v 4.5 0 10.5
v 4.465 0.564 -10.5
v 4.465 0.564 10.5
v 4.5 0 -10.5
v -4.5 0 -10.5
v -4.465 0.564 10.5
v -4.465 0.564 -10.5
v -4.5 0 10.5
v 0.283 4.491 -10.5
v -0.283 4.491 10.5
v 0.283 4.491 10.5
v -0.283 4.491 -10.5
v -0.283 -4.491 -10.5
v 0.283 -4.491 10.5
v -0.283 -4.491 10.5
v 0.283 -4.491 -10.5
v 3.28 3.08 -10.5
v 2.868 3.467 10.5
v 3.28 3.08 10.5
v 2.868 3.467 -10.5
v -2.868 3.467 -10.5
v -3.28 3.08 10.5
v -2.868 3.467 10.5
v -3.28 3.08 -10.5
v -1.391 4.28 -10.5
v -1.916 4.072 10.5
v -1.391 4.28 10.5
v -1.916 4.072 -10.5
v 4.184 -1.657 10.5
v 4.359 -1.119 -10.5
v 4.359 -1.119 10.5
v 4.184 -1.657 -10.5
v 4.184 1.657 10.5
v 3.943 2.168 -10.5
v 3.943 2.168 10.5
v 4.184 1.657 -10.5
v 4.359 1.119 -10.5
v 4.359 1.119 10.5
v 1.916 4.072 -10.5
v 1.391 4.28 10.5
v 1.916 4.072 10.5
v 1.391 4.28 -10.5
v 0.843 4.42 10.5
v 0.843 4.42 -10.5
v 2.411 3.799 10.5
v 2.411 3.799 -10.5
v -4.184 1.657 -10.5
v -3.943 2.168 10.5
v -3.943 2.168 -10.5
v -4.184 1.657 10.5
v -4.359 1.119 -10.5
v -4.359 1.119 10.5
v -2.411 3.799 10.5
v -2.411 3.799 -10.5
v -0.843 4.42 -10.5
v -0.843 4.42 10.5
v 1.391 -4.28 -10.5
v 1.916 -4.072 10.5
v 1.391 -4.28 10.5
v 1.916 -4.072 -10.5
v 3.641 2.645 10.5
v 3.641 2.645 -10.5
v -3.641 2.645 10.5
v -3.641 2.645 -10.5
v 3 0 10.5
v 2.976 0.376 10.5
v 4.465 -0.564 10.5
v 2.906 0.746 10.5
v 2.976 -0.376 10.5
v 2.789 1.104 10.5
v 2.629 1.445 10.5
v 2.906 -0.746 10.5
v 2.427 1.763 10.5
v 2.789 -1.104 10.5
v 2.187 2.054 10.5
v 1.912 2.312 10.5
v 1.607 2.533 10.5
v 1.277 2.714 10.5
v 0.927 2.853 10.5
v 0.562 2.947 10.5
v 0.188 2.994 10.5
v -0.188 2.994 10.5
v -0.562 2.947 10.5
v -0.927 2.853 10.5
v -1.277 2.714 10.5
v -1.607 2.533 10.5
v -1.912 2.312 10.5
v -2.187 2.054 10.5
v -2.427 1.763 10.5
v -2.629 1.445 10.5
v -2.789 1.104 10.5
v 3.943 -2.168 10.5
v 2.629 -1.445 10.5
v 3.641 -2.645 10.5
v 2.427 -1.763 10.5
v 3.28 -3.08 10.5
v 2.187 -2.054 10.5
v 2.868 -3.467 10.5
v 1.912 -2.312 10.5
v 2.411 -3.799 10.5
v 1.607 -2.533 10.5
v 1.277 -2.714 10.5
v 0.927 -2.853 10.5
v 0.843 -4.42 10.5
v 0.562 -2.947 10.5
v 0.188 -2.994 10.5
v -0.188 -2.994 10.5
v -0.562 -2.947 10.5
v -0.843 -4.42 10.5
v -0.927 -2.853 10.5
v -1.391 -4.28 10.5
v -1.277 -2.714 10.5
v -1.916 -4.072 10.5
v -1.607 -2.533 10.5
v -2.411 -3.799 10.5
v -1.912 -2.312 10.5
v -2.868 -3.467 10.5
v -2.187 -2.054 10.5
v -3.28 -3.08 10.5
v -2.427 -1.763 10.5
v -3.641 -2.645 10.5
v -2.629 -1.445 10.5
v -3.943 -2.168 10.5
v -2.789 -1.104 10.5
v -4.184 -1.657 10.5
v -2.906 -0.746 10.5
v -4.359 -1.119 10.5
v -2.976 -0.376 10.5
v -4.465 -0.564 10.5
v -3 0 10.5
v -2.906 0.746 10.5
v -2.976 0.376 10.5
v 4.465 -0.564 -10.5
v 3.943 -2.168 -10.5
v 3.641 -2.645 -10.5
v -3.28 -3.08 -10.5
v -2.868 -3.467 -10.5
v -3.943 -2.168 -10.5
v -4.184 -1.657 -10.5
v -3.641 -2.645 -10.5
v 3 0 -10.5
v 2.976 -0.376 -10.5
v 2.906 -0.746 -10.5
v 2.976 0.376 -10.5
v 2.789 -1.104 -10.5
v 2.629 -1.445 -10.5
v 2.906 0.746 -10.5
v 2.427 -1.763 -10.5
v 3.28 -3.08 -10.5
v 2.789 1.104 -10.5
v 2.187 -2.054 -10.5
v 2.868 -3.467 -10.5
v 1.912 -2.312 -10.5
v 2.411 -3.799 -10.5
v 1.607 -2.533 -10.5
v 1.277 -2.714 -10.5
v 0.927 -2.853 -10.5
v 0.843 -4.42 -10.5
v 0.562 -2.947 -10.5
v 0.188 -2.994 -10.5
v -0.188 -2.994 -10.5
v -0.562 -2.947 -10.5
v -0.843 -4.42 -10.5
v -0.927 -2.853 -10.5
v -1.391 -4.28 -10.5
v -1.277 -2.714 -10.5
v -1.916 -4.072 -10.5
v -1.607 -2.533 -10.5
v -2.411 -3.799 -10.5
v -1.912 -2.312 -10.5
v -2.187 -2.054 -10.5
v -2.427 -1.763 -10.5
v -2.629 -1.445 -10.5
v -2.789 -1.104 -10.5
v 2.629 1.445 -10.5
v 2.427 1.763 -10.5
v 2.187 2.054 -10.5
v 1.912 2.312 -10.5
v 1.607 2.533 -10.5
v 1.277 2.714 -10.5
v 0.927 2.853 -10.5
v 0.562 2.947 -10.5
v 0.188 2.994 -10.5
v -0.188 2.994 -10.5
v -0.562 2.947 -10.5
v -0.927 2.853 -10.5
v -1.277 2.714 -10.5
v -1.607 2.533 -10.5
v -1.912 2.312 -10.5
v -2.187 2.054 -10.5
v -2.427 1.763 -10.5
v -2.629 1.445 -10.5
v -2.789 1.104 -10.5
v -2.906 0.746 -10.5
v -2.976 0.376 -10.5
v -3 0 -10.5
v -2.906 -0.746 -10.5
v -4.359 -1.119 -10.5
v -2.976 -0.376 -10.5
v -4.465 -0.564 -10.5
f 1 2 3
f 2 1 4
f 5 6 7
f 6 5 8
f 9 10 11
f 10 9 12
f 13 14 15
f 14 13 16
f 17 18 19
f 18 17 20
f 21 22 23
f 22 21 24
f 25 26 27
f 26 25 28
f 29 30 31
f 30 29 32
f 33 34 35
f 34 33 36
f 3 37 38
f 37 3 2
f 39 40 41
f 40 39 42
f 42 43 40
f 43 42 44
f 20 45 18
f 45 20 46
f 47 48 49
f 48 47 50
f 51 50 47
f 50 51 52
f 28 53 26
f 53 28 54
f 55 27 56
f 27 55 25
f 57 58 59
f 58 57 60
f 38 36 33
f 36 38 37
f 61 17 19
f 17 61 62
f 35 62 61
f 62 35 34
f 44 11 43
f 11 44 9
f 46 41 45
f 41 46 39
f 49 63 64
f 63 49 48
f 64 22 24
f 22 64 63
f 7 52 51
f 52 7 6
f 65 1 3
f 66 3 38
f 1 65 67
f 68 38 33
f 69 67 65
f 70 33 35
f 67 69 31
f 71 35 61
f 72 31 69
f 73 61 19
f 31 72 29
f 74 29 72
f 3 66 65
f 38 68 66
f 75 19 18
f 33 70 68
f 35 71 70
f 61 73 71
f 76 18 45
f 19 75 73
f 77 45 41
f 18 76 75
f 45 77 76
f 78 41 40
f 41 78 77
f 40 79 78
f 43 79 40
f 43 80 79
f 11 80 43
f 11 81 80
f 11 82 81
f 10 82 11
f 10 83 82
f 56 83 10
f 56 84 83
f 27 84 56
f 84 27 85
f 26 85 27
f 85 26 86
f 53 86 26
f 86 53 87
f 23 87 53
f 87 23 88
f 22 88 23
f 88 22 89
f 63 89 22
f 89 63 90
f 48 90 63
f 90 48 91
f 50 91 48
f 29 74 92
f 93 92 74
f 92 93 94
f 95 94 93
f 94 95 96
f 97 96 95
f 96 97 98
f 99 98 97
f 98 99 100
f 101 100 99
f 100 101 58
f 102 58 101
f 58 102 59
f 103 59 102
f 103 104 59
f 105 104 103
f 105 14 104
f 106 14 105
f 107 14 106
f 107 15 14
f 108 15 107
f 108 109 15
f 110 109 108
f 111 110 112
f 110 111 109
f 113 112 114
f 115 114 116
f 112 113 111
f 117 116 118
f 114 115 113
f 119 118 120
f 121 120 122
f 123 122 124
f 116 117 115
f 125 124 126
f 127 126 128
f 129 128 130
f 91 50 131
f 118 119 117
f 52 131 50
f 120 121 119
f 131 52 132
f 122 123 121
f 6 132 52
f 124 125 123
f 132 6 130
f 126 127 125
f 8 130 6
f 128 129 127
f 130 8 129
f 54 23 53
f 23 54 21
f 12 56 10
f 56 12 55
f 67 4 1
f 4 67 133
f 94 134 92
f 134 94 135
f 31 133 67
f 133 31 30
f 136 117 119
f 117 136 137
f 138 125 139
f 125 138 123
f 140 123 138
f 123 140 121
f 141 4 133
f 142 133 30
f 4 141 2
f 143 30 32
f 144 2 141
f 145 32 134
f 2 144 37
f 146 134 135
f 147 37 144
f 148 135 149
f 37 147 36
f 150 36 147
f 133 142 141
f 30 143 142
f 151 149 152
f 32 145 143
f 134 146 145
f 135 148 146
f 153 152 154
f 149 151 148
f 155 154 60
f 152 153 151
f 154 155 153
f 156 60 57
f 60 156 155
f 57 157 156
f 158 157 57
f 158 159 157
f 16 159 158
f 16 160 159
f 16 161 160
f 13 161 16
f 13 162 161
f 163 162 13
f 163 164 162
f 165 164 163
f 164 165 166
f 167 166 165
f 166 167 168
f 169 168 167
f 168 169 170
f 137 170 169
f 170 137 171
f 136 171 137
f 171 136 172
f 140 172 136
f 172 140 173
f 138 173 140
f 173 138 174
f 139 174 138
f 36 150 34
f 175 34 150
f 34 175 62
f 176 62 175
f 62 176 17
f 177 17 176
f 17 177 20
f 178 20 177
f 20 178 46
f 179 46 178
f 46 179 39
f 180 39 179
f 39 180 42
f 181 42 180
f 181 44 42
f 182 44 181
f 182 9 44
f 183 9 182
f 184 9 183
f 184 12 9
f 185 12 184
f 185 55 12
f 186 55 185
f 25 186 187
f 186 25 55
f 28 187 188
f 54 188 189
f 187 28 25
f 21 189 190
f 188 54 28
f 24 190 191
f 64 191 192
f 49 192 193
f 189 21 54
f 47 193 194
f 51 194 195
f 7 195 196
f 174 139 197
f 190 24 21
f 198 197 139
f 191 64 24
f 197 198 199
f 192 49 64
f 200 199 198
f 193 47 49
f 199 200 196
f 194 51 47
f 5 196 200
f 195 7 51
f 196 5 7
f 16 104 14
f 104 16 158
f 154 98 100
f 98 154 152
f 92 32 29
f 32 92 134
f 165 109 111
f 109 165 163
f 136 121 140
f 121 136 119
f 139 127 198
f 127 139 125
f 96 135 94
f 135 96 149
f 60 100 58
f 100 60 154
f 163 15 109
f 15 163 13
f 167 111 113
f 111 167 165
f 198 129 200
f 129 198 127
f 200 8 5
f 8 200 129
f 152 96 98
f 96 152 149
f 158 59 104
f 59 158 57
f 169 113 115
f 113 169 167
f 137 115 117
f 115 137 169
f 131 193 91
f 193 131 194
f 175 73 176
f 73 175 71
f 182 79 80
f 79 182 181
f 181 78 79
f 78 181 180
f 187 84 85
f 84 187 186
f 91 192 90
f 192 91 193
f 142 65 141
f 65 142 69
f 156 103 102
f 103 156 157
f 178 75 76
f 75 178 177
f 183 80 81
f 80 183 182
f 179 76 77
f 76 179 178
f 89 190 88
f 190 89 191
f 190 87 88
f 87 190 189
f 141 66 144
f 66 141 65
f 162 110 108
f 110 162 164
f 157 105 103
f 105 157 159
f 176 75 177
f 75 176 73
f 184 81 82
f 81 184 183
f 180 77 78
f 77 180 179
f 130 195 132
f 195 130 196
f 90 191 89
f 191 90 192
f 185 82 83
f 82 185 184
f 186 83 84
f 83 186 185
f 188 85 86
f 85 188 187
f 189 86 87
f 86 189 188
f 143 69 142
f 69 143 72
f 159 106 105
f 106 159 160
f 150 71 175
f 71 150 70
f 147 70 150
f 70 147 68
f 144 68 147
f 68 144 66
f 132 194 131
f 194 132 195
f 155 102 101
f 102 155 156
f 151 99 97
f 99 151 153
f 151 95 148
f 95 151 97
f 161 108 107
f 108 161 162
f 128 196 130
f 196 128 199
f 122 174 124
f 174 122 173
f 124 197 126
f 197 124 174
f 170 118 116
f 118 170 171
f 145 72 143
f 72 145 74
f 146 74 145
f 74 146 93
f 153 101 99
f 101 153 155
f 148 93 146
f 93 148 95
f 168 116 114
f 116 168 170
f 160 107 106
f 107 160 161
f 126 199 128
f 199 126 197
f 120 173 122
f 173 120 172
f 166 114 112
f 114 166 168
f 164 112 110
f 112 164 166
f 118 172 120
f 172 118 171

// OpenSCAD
$fn = 50;


difference() {
	union() {
		translate(v = [0, 0, -10.5000000000]) {
			cylinder(h = 21, r = 4.5000000000);
		}
	}
	union() {
		translate(v = [0, 0, -100.0000000000]) {
			cylinder(h = 200, r = 3);
		}
	}
}
